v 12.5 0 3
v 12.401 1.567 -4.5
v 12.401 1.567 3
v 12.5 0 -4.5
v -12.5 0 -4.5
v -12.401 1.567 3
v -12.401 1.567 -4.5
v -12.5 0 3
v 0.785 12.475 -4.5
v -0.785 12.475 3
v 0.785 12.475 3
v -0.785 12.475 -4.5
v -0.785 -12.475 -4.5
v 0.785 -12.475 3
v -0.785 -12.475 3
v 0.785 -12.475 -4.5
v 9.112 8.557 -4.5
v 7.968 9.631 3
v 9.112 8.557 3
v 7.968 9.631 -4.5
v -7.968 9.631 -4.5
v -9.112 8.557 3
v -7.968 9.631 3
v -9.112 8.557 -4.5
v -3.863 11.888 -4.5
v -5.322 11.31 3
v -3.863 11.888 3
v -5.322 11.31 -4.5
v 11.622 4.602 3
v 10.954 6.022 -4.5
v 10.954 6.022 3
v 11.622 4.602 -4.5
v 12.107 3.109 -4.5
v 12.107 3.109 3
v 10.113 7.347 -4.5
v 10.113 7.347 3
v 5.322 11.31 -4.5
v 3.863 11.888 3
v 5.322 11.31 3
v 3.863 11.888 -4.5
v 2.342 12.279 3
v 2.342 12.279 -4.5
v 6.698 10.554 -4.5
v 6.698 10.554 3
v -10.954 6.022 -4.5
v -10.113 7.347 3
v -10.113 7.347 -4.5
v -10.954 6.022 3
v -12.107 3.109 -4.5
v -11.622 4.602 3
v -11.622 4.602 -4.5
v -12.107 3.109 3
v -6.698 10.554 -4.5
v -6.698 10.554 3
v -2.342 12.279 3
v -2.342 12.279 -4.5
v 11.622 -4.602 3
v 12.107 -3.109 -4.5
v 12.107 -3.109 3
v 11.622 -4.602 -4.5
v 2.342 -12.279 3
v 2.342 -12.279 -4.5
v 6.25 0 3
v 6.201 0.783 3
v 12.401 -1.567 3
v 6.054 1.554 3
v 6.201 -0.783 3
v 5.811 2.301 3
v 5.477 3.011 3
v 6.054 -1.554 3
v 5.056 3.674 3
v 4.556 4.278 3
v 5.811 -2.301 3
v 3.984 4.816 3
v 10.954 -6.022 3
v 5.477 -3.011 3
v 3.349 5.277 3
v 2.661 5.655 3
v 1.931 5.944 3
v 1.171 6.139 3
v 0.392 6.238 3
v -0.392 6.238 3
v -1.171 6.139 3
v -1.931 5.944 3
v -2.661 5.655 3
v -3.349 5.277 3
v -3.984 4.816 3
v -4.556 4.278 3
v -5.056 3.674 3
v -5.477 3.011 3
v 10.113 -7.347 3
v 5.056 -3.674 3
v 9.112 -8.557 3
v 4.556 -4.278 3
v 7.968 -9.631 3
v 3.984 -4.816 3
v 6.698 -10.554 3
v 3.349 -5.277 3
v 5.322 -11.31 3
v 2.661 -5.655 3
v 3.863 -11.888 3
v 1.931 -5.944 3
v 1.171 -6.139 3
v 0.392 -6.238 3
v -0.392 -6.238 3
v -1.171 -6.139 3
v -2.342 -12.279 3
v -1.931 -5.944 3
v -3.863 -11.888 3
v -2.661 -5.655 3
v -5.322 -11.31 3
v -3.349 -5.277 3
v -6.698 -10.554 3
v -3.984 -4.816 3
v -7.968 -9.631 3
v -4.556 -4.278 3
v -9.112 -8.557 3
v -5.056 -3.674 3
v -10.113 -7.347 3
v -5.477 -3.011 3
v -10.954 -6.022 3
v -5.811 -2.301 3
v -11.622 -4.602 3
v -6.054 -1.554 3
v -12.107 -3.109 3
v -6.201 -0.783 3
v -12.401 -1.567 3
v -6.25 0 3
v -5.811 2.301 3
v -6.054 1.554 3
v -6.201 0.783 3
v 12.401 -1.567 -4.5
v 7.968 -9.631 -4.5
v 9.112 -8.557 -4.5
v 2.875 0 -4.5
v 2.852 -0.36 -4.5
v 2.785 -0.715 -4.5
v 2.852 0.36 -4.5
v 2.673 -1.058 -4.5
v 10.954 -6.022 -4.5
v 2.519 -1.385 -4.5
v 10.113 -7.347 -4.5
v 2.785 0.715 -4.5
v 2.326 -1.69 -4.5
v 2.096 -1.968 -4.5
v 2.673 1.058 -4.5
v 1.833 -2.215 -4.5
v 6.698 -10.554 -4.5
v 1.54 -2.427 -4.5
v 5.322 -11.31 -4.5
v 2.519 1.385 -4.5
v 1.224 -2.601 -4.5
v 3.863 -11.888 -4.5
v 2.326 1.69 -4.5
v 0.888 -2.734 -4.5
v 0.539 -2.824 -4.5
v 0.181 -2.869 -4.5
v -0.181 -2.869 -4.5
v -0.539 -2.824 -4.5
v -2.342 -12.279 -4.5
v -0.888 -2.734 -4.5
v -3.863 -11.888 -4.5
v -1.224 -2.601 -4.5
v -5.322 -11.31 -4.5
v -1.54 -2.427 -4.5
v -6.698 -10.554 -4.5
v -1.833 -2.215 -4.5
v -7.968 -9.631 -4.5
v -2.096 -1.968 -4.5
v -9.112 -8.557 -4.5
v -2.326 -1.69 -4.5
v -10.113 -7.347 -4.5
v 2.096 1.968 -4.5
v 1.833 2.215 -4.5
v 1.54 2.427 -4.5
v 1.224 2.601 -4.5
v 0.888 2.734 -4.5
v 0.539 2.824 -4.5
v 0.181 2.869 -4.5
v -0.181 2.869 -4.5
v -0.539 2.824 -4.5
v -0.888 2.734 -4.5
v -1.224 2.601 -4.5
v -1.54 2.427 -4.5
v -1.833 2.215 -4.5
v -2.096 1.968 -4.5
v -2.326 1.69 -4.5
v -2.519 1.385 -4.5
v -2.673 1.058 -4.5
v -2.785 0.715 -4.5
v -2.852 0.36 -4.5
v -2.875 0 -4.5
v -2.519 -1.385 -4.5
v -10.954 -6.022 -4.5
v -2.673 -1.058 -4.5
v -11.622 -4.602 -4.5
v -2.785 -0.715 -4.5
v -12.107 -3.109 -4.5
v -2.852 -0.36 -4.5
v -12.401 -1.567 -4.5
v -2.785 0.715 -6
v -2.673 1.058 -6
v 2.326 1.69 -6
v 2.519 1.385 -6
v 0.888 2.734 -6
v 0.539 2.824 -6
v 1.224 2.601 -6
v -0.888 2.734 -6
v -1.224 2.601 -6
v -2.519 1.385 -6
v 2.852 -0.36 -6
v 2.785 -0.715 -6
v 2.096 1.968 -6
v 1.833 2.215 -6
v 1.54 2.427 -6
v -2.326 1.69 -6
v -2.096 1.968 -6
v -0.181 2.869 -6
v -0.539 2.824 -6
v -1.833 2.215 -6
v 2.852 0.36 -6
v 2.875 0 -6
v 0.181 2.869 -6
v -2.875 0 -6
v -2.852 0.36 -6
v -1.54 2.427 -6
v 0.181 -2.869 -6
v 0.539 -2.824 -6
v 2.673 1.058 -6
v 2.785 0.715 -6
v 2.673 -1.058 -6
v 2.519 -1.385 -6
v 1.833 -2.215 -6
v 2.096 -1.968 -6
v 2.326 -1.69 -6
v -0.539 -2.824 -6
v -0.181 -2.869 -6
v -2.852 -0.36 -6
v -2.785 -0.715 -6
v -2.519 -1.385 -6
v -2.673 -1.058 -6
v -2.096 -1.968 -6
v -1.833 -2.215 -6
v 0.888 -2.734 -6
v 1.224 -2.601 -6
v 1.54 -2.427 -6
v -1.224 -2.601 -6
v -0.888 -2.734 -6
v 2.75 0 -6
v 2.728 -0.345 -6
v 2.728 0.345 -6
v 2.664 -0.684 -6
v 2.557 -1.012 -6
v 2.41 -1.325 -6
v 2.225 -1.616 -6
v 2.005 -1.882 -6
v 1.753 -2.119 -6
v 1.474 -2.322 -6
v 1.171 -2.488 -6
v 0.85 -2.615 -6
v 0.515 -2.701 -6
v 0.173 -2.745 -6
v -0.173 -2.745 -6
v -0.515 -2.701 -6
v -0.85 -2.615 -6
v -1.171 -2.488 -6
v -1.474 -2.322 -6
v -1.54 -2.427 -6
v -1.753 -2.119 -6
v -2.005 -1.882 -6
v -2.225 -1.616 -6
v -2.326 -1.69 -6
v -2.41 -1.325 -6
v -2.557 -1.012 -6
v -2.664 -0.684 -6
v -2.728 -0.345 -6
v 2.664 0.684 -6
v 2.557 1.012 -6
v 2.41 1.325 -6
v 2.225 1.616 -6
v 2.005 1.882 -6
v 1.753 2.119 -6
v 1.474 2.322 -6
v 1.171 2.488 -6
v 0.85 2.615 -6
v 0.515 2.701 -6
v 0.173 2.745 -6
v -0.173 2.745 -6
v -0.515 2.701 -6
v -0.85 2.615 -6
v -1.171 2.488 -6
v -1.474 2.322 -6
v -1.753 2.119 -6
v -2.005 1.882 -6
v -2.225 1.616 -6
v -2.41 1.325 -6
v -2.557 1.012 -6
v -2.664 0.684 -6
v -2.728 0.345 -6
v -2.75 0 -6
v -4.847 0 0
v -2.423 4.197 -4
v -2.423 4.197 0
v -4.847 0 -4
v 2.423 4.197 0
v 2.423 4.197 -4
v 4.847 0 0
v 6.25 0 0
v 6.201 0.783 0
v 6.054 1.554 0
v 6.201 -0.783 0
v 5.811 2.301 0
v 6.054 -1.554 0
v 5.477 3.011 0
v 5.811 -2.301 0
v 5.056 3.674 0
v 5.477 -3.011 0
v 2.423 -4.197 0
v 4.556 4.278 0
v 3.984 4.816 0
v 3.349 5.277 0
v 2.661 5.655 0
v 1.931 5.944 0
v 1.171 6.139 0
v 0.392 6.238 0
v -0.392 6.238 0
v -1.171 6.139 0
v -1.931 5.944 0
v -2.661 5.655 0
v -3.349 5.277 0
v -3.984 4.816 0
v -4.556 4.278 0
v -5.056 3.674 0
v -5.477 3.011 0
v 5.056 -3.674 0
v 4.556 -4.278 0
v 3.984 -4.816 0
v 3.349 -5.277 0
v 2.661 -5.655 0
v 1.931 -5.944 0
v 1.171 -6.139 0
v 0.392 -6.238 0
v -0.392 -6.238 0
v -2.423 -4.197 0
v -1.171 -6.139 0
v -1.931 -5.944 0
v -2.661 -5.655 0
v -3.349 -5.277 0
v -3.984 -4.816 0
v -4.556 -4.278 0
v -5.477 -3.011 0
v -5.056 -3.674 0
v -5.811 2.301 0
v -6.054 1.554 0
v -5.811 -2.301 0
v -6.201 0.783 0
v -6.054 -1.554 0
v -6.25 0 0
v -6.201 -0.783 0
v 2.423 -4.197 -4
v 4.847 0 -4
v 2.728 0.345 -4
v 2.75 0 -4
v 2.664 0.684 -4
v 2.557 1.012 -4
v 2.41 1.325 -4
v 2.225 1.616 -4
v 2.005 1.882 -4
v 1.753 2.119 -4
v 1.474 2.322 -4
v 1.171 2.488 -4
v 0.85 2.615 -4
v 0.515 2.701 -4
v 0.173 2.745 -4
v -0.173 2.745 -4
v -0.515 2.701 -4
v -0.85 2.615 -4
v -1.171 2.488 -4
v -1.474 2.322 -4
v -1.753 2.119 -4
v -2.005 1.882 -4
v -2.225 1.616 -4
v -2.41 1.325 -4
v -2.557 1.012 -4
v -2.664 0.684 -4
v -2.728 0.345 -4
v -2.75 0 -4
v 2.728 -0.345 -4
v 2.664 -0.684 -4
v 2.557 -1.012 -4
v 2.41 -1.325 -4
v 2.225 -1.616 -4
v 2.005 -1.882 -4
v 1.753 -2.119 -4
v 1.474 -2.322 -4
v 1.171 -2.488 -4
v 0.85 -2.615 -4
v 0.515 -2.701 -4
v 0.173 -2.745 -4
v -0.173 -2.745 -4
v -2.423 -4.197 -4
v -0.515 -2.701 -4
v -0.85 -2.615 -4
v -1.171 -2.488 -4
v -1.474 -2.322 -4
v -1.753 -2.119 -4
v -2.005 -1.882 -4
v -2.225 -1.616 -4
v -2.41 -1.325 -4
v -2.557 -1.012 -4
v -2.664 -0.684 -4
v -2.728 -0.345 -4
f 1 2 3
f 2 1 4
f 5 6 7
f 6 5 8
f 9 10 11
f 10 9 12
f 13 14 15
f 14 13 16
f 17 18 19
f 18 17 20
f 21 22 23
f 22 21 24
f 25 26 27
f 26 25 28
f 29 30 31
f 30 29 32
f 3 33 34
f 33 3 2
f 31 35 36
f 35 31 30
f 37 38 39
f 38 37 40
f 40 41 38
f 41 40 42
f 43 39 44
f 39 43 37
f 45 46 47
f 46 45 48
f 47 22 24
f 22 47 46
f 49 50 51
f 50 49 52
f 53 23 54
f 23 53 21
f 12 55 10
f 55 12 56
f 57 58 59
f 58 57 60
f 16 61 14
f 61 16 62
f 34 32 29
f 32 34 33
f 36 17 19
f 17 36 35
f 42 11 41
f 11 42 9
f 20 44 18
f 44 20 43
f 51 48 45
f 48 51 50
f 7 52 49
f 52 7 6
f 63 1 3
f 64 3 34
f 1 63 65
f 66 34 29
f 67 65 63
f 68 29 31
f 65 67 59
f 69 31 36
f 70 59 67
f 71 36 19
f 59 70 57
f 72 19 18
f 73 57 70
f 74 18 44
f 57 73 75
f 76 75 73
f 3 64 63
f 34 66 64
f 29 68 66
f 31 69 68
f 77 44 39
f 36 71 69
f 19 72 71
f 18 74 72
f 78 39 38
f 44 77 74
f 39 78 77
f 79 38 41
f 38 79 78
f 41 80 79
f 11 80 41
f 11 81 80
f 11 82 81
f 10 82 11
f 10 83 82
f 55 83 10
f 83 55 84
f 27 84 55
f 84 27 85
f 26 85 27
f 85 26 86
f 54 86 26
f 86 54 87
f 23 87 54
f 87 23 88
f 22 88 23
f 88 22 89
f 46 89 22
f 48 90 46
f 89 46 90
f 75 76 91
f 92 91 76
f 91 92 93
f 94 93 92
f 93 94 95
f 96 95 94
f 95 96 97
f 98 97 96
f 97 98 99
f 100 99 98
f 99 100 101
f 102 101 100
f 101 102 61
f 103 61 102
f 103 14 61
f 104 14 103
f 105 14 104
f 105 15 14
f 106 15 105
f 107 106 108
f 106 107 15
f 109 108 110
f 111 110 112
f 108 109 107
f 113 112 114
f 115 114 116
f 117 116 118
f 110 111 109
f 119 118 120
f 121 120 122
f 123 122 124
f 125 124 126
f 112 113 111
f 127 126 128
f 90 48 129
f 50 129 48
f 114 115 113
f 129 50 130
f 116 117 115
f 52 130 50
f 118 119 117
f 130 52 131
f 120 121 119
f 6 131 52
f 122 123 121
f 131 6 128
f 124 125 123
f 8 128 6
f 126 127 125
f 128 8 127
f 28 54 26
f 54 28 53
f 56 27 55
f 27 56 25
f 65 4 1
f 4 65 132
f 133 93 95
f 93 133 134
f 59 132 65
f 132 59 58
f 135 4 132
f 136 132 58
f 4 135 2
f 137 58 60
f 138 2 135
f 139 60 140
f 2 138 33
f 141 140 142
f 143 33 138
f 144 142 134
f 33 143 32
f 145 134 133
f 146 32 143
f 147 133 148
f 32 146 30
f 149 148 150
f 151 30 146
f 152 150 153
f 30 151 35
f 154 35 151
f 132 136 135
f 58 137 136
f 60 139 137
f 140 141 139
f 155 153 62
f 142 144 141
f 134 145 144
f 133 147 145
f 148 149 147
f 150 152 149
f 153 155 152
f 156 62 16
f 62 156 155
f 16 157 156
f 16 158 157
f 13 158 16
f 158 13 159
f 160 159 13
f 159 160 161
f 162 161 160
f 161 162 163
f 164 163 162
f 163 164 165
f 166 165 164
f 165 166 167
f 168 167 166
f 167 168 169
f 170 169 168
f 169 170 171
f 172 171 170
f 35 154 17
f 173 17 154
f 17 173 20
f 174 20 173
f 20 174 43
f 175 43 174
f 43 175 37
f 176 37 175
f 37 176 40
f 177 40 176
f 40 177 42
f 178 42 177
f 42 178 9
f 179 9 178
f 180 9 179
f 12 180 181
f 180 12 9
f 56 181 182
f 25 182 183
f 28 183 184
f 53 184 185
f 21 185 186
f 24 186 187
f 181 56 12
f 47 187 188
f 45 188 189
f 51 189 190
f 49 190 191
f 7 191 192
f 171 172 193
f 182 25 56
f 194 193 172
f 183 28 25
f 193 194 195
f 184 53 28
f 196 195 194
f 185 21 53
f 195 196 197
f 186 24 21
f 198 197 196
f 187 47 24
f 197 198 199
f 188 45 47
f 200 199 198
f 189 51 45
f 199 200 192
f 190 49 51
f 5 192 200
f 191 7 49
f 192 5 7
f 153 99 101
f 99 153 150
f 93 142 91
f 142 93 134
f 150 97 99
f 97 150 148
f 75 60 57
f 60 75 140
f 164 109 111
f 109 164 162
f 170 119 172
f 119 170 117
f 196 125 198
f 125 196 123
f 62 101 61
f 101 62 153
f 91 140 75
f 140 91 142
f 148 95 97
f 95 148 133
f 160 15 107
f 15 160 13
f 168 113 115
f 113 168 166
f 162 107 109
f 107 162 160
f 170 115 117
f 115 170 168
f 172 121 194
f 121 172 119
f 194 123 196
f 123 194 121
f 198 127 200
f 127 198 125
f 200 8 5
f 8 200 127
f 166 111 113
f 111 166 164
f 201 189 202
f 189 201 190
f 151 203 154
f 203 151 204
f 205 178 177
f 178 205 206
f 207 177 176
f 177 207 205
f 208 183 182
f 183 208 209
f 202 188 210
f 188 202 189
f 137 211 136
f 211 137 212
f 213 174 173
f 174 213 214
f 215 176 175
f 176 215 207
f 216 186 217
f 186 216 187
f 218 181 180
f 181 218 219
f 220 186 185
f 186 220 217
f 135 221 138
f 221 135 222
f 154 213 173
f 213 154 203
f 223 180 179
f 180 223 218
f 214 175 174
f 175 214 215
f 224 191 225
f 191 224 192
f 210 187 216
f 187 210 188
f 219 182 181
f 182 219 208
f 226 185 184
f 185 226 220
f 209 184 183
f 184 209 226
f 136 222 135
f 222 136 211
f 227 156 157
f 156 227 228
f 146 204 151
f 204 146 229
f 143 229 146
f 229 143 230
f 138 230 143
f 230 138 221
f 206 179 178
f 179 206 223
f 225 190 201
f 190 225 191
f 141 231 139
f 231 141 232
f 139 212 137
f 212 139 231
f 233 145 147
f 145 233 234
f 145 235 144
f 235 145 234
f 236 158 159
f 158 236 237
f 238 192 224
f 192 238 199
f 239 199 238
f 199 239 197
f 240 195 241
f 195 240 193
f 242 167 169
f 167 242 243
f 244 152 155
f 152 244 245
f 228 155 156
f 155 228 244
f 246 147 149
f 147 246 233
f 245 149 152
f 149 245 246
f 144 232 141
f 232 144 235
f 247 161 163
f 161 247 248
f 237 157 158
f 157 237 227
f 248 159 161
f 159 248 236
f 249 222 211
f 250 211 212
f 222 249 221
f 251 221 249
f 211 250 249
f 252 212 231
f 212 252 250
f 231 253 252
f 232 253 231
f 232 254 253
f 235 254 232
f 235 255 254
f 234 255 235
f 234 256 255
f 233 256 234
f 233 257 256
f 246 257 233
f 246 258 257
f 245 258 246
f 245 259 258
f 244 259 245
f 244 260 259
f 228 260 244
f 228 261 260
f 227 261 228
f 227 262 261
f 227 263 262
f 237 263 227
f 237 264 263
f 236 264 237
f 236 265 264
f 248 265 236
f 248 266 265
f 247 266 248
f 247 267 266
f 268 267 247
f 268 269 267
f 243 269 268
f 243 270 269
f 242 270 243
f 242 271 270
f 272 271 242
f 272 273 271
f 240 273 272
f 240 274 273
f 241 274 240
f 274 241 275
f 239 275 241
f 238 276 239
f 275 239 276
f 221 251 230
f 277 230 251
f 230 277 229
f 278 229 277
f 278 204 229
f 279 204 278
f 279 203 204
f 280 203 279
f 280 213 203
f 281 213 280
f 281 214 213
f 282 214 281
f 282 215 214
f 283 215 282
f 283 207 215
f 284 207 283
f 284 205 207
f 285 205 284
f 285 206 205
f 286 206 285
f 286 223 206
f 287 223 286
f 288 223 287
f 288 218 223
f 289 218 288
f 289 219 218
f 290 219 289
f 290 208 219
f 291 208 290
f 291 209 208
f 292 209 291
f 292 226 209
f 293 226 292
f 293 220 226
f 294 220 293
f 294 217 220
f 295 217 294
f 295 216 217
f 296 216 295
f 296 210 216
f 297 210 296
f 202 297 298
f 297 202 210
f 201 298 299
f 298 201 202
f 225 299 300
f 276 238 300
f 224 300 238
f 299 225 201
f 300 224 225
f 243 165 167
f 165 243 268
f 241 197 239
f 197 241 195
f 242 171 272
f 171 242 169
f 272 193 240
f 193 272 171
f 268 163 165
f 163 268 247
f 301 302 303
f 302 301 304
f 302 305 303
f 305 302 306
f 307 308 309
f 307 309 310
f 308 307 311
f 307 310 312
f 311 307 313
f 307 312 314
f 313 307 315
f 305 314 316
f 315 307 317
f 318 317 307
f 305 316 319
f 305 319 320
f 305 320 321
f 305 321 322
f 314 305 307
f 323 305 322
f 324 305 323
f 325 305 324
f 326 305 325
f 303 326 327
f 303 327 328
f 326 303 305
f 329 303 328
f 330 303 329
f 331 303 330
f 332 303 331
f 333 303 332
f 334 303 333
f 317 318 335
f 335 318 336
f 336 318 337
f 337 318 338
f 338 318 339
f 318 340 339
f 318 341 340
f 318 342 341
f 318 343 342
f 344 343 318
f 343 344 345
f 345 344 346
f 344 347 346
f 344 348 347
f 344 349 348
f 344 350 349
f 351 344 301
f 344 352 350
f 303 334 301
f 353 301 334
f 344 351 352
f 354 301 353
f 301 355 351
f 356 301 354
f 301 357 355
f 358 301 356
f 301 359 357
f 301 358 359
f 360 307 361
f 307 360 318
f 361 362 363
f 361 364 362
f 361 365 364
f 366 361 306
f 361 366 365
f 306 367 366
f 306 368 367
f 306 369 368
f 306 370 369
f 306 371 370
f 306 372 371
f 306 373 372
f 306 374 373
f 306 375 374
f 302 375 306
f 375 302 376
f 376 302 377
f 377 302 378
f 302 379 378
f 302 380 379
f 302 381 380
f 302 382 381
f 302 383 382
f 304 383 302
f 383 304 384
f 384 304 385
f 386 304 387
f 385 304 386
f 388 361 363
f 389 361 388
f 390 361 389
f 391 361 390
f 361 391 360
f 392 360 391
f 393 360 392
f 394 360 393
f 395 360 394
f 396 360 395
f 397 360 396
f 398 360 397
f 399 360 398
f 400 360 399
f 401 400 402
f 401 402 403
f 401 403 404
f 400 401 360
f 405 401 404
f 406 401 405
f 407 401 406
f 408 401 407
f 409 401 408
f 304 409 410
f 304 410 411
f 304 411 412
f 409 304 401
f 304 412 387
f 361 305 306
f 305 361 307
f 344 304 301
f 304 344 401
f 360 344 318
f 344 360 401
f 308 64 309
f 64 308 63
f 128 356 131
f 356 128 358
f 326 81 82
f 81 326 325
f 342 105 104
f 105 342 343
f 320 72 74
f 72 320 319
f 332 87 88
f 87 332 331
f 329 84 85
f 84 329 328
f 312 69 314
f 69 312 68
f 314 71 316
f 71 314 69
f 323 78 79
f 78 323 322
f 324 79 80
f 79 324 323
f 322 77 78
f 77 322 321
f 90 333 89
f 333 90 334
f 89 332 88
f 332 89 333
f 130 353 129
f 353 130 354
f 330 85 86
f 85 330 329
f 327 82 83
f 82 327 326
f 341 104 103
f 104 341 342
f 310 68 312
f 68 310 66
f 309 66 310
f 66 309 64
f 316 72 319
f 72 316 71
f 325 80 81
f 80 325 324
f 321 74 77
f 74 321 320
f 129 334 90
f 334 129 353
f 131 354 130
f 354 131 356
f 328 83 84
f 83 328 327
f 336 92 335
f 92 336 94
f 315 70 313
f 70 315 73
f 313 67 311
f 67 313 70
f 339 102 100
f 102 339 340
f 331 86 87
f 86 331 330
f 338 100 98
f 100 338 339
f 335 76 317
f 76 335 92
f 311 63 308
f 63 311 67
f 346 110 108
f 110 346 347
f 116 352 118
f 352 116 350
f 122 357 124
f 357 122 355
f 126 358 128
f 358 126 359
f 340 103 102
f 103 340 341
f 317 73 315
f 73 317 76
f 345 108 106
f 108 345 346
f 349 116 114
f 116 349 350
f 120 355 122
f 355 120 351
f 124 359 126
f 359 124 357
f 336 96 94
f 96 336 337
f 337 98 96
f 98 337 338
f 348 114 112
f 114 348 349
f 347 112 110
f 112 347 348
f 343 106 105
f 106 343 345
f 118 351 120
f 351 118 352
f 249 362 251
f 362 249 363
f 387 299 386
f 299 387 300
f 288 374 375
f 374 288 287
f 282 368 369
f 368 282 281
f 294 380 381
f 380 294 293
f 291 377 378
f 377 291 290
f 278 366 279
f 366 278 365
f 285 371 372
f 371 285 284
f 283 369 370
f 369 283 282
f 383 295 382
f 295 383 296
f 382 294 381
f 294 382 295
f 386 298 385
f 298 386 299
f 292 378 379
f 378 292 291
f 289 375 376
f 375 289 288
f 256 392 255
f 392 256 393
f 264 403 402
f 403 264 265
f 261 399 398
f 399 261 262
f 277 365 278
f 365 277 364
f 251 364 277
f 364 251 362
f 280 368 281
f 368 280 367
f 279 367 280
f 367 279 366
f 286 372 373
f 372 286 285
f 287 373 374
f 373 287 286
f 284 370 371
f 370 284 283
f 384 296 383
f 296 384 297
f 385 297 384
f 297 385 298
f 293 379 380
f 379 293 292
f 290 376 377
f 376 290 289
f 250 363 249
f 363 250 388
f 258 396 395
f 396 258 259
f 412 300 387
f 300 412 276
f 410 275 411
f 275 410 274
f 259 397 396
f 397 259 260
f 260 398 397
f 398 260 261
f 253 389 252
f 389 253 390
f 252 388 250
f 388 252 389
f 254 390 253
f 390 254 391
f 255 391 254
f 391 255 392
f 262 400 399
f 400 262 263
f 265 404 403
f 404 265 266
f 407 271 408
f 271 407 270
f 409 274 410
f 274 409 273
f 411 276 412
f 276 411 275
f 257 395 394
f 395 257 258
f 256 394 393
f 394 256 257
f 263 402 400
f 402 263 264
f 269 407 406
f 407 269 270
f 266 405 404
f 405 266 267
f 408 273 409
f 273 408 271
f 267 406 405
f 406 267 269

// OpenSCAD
$fn = 50;

difference() {
	union() {
		translate(v = [0, 0, -4.5]) {
			cylinder(h = 7.5, r = 12.5);
		}
		#translate(v = [0, 0, -6.0]) {
			cylinder(h = 6, r = 2.875);
		}
	}
	union() {
		translate(v = [0, 0, 0]) {
			rotate(a = [0, 0, 0]) {
				difference() {
					union() {
						translate(v = [0, 0, -4]) {
							linear_extrude(height = 4) {
								polygon(points = [[4.8468, 0.0], [2.4234000000000004, 4.197451927062417], [-2.423399999999999, 4.197451927062417], [-4.8468, 5.935618106107392e-16], [-2.423400000000002, -4.197451927062416], [2.423399999999997, -4.197451927062419]]);
							}
						}
					}
					union();
				}
			}
		}
		#cylinder(h = 3, r = 6.25);
		#translate(v = [0, 0, -100.0]) {
			cylinder(h = 200, r = 2.75);
		}
	}
}
